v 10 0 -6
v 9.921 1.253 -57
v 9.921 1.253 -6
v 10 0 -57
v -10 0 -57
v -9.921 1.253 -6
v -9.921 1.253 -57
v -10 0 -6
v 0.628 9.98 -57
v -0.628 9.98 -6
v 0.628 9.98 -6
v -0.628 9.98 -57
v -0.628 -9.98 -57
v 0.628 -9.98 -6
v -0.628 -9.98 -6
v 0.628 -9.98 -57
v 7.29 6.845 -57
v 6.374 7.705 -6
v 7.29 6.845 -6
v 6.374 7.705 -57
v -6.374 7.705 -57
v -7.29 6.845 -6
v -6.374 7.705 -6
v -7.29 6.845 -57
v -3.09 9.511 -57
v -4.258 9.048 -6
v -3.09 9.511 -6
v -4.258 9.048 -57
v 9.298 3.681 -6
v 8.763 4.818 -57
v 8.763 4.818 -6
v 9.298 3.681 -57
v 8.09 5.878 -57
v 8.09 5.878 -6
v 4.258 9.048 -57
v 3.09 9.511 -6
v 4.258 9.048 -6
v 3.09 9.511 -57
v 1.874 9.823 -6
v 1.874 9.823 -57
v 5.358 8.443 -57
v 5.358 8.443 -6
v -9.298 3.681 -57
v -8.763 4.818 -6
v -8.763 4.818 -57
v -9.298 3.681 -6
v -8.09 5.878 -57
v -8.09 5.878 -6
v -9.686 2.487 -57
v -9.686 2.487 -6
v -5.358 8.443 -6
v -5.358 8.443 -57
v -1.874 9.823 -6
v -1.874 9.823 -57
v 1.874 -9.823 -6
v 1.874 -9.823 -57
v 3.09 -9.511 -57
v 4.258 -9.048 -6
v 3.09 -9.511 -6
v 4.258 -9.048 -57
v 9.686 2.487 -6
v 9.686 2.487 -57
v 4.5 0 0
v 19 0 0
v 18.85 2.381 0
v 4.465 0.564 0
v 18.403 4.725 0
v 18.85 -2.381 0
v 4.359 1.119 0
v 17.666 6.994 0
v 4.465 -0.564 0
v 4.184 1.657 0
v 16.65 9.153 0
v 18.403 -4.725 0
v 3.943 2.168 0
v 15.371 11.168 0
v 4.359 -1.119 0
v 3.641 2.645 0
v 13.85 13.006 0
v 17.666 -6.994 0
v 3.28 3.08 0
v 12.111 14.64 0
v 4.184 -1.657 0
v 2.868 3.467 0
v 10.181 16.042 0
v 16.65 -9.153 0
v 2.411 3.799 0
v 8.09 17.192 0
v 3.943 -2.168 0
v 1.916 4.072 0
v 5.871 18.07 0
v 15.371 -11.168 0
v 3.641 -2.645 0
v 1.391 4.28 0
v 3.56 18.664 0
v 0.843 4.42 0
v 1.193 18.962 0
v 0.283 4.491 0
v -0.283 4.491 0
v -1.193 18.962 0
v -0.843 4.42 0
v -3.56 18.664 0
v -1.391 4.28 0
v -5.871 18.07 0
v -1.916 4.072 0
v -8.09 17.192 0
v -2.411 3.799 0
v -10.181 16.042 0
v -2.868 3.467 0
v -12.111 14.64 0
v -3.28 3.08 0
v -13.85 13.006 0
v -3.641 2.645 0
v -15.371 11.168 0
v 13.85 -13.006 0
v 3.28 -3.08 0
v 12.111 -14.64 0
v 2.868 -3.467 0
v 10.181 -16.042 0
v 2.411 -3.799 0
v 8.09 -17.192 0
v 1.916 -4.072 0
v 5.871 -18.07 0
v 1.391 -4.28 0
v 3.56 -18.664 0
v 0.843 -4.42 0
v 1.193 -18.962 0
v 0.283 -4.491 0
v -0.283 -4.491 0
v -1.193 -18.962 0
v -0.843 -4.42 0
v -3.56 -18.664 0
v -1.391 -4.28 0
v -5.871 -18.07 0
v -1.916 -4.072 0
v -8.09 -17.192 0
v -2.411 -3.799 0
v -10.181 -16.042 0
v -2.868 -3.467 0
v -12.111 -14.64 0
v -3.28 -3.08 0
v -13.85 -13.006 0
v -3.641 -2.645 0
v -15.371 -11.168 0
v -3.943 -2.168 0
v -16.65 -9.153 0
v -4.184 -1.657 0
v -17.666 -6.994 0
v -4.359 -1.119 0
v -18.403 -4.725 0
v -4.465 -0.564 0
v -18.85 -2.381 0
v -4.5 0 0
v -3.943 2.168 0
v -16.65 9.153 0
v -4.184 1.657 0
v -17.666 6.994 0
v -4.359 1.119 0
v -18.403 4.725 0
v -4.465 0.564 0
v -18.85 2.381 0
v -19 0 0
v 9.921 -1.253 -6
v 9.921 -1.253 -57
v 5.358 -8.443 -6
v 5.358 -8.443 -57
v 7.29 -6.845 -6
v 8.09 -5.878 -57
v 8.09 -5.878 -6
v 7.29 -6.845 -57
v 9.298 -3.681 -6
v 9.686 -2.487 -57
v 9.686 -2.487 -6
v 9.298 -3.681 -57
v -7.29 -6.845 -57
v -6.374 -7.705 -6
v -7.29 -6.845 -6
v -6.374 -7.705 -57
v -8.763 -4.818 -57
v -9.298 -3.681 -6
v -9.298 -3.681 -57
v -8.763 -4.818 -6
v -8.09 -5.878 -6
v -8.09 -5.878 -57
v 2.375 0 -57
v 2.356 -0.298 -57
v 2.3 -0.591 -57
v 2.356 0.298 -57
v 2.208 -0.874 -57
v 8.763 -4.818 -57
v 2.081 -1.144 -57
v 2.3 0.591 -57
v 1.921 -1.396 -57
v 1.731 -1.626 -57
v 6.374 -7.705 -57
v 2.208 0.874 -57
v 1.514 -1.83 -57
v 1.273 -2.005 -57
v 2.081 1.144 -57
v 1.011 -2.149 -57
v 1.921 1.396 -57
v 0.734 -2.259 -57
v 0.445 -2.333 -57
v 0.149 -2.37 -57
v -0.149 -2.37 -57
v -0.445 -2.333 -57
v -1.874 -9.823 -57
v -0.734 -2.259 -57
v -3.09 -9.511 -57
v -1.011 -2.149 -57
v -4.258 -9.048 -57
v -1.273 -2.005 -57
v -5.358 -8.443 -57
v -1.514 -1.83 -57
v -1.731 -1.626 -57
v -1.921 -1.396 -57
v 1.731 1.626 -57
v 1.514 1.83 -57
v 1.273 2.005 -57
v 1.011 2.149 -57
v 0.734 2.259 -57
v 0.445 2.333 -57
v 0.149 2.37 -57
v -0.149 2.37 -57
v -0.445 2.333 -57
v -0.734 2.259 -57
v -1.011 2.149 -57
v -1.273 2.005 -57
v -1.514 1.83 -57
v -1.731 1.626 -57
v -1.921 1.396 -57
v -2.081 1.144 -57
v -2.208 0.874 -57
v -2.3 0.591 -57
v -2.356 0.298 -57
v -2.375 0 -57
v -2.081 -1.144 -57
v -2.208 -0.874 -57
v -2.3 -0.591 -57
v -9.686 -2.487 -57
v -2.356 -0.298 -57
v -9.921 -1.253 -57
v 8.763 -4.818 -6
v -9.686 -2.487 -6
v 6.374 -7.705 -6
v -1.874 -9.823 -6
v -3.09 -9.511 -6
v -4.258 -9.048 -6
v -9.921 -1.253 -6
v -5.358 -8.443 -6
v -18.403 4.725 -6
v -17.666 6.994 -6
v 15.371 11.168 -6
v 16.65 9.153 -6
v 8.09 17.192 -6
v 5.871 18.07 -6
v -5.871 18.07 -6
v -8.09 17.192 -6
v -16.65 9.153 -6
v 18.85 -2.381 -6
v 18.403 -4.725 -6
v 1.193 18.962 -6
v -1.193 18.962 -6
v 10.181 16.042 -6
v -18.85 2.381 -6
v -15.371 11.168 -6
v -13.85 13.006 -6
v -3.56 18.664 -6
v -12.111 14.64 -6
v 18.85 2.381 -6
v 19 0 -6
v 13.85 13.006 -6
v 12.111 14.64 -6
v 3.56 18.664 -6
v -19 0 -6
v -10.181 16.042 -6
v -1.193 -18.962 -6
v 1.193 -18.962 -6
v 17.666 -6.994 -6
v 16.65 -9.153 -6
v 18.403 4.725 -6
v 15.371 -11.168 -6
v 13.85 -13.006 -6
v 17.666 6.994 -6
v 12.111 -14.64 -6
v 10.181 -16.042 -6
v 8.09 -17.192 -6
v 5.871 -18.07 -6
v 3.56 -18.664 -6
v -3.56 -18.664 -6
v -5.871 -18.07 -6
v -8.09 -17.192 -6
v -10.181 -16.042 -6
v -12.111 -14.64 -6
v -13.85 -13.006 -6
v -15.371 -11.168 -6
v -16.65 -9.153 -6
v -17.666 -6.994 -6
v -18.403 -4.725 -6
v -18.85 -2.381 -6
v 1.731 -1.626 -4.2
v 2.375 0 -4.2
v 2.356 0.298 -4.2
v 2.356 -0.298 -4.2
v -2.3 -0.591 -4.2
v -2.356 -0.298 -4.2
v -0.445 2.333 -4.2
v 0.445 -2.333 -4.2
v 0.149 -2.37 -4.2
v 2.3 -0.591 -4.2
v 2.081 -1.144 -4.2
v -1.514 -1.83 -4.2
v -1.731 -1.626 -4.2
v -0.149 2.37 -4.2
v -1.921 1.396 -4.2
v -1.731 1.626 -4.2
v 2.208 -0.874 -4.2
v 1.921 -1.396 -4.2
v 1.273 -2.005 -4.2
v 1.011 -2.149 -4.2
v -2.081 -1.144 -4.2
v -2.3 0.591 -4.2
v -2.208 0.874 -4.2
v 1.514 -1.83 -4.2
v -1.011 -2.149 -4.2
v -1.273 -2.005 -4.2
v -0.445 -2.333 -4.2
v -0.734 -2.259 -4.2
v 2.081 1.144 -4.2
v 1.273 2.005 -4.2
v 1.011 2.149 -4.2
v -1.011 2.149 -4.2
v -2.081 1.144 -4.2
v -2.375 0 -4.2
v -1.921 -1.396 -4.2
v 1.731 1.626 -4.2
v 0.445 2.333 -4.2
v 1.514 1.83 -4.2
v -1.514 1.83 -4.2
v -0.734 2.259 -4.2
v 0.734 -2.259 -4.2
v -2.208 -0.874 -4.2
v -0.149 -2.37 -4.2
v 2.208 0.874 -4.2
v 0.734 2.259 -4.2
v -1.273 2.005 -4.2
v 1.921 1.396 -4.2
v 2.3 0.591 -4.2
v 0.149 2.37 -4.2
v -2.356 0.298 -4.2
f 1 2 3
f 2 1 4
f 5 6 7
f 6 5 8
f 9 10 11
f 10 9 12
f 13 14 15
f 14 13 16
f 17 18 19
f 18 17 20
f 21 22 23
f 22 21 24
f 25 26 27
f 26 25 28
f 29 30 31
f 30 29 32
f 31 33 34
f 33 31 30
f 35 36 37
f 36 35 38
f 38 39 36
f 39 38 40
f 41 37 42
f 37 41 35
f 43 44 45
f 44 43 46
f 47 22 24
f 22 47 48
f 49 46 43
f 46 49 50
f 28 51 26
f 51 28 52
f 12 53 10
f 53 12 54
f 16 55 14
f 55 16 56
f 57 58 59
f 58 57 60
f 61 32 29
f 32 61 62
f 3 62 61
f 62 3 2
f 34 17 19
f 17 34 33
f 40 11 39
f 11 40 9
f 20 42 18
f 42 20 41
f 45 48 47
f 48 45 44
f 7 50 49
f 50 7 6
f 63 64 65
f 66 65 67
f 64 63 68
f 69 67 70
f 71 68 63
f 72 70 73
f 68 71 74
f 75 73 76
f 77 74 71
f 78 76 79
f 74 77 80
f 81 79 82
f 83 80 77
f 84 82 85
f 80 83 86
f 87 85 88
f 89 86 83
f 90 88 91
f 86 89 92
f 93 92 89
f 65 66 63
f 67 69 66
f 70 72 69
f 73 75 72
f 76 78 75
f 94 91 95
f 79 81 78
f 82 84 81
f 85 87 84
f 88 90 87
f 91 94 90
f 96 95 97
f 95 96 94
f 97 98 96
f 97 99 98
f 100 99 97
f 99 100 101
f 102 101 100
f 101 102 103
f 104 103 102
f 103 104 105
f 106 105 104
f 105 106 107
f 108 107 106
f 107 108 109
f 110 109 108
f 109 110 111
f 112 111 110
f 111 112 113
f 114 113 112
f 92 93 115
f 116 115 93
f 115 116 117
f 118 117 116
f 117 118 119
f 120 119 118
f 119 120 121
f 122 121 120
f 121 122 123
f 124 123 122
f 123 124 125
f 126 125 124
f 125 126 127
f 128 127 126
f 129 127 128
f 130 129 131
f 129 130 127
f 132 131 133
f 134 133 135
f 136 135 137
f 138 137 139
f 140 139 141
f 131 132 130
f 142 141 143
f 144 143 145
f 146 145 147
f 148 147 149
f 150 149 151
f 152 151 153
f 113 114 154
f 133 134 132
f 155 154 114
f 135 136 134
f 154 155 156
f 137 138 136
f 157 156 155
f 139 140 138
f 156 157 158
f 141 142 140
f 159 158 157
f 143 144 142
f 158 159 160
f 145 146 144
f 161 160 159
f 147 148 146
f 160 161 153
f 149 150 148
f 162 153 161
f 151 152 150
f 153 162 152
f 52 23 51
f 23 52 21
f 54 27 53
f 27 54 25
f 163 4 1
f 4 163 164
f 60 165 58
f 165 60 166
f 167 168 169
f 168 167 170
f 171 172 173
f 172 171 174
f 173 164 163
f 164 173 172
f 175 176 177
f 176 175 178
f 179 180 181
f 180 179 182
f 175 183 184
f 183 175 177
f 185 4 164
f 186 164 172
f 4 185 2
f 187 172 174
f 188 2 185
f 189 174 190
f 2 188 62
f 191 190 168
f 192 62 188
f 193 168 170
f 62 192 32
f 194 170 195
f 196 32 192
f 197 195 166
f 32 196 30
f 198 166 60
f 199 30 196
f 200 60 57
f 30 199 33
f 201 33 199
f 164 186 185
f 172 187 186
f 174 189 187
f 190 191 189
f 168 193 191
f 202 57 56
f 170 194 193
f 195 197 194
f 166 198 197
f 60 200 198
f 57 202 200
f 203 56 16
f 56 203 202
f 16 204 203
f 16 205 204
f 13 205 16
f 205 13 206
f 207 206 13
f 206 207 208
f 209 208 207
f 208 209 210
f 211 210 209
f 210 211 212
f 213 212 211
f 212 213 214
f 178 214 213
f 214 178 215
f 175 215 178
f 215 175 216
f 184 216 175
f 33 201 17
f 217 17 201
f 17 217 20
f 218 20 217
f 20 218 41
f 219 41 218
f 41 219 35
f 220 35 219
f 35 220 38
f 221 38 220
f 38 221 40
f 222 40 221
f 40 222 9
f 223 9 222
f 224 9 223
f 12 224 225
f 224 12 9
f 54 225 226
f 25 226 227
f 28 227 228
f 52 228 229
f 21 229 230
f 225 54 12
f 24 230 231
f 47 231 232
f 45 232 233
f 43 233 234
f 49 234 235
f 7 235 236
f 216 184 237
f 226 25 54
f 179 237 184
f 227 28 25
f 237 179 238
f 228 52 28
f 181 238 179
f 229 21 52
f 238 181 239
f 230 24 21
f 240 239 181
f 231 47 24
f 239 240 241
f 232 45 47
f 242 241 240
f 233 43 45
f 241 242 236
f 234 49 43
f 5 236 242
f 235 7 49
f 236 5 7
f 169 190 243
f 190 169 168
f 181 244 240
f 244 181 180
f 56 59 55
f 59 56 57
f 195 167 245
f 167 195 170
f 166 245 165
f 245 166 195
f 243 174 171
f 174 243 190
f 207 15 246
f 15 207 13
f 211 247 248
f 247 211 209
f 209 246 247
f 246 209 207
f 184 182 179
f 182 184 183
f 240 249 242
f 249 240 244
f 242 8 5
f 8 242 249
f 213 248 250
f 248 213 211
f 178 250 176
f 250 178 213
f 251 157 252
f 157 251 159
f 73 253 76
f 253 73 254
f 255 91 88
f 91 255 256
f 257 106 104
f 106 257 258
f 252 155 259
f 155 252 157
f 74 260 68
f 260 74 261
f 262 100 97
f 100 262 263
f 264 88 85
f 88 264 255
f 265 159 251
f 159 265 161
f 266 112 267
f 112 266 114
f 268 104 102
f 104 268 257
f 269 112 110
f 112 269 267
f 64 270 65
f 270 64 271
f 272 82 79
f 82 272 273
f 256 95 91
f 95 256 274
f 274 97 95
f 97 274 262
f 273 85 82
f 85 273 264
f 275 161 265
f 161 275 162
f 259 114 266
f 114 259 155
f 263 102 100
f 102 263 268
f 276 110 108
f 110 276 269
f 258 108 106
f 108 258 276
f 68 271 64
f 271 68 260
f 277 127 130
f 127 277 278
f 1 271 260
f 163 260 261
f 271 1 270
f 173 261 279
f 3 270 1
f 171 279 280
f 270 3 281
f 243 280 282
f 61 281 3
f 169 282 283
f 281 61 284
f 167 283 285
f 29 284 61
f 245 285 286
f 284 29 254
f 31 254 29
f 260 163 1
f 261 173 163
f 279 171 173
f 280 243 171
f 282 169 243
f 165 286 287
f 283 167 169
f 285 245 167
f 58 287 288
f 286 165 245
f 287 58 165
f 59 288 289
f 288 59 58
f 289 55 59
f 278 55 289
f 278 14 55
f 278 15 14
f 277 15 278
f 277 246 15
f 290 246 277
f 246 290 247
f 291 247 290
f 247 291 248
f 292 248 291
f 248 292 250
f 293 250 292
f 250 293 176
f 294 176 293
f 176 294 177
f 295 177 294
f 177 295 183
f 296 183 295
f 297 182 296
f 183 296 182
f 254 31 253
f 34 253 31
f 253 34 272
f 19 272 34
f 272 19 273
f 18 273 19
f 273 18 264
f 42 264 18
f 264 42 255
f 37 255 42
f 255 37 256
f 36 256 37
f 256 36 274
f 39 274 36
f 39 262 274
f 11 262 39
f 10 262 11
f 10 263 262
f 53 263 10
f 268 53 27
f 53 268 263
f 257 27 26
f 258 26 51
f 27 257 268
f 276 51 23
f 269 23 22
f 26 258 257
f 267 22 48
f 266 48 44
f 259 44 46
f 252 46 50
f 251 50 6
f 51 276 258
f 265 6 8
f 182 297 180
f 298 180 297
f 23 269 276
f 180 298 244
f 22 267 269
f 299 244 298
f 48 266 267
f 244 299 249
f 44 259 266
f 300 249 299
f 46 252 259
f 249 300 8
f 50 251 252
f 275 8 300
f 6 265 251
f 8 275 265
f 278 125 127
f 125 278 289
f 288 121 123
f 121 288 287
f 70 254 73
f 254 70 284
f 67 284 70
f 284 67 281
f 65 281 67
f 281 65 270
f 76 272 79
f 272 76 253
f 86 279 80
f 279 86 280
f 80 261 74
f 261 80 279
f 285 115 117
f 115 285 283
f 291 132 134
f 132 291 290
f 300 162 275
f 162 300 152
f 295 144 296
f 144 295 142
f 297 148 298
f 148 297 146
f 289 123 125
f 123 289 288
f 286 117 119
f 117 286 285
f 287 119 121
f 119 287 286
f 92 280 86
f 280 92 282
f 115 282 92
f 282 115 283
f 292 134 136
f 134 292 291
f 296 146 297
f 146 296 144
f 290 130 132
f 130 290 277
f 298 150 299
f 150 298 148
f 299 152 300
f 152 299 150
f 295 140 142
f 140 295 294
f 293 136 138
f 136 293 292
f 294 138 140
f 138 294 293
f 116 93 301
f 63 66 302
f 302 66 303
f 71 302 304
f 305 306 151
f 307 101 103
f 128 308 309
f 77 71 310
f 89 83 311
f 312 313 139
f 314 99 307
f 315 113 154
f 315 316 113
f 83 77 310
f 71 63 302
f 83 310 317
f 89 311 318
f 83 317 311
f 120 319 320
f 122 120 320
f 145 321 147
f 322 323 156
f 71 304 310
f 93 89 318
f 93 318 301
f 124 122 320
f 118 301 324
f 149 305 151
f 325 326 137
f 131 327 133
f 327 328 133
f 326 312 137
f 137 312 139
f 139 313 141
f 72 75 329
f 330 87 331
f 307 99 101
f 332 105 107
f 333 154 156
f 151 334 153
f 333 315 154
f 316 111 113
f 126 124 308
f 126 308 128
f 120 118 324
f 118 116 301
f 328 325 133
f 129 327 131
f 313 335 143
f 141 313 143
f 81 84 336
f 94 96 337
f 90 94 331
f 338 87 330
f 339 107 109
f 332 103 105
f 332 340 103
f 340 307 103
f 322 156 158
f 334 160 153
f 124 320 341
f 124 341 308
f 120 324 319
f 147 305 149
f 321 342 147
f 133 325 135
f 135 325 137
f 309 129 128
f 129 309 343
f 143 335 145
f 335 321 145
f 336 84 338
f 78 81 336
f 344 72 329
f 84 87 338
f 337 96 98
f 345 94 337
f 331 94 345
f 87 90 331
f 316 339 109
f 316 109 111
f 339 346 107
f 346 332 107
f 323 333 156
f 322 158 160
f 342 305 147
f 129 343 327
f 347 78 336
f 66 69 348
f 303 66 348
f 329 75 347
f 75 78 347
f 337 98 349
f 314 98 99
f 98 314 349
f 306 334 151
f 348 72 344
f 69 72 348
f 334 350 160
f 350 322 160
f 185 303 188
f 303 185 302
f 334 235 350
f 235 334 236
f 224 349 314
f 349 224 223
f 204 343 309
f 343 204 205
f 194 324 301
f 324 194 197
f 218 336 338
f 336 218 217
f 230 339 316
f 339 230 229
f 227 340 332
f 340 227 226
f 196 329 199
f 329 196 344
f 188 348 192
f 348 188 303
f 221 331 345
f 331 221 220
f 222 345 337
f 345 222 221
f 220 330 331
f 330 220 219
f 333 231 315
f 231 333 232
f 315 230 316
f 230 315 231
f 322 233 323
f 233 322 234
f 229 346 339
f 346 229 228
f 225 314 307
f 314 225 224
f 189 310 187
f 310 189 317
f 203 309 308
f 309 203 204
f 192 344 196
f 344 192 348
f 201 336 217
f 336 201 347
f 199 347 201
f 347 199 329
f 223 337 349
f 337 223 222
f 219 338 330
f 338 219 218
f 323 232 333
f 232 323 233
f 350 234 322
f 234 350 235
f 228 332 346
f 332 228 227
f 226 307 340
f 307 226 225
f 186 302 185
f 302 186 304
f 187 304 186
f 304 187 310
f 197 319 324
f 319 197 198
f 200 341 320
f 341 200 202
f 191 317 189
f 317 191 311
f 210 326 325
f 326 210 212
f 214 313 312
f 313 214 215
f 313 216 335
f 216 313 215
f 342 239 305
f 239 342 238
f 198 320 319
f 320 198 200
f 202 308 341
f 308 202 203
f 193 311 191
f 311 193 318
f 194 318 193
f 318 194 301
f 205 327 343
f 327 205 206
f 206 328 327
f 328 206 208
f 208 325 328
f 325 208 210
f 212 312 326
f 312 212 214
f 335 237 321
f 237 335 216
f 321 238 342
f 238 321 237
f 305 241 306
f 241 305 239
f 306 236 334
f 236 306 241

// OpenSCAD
$fn = 50;


difference() {
	union() {
		translate(v = [0, 0, -57.0000000000]) {
			cylinder(h = 57, r = 10.0000000000);
		}
		translate(v = [0, 0, -6.0000000000]) {
			cylinder(h = 6, r = 19.0000000000);
		}
	}
	union() {
		translate(v = [0, 0, 0]) {
			rotate(a = [0, 0, 0]) {
				difference() {
					union() {
						#translate(v = [0, 0, -57.0000000000]) {
							cylinder(h = 57, r = 2.2500000000);
						}
						#translate(v = [0, 0, -4.2000000000]) {
							cylinder(h = 4.2000000000, r = 10.0000000000, r1 = 2.3750000000, r2 = 4.5000000000);
						}
						#translate(v = [0, 0, -57.0000000000]) {
							cylinder(h = 57, r = 2.3750000000);
						}
						#translate(v = [0, 0, -57.0000000000]) {
							cylinder(h = 57, r = 2.2500000000);
						}
					}
					union();
				}
			}
		}
	}
}
